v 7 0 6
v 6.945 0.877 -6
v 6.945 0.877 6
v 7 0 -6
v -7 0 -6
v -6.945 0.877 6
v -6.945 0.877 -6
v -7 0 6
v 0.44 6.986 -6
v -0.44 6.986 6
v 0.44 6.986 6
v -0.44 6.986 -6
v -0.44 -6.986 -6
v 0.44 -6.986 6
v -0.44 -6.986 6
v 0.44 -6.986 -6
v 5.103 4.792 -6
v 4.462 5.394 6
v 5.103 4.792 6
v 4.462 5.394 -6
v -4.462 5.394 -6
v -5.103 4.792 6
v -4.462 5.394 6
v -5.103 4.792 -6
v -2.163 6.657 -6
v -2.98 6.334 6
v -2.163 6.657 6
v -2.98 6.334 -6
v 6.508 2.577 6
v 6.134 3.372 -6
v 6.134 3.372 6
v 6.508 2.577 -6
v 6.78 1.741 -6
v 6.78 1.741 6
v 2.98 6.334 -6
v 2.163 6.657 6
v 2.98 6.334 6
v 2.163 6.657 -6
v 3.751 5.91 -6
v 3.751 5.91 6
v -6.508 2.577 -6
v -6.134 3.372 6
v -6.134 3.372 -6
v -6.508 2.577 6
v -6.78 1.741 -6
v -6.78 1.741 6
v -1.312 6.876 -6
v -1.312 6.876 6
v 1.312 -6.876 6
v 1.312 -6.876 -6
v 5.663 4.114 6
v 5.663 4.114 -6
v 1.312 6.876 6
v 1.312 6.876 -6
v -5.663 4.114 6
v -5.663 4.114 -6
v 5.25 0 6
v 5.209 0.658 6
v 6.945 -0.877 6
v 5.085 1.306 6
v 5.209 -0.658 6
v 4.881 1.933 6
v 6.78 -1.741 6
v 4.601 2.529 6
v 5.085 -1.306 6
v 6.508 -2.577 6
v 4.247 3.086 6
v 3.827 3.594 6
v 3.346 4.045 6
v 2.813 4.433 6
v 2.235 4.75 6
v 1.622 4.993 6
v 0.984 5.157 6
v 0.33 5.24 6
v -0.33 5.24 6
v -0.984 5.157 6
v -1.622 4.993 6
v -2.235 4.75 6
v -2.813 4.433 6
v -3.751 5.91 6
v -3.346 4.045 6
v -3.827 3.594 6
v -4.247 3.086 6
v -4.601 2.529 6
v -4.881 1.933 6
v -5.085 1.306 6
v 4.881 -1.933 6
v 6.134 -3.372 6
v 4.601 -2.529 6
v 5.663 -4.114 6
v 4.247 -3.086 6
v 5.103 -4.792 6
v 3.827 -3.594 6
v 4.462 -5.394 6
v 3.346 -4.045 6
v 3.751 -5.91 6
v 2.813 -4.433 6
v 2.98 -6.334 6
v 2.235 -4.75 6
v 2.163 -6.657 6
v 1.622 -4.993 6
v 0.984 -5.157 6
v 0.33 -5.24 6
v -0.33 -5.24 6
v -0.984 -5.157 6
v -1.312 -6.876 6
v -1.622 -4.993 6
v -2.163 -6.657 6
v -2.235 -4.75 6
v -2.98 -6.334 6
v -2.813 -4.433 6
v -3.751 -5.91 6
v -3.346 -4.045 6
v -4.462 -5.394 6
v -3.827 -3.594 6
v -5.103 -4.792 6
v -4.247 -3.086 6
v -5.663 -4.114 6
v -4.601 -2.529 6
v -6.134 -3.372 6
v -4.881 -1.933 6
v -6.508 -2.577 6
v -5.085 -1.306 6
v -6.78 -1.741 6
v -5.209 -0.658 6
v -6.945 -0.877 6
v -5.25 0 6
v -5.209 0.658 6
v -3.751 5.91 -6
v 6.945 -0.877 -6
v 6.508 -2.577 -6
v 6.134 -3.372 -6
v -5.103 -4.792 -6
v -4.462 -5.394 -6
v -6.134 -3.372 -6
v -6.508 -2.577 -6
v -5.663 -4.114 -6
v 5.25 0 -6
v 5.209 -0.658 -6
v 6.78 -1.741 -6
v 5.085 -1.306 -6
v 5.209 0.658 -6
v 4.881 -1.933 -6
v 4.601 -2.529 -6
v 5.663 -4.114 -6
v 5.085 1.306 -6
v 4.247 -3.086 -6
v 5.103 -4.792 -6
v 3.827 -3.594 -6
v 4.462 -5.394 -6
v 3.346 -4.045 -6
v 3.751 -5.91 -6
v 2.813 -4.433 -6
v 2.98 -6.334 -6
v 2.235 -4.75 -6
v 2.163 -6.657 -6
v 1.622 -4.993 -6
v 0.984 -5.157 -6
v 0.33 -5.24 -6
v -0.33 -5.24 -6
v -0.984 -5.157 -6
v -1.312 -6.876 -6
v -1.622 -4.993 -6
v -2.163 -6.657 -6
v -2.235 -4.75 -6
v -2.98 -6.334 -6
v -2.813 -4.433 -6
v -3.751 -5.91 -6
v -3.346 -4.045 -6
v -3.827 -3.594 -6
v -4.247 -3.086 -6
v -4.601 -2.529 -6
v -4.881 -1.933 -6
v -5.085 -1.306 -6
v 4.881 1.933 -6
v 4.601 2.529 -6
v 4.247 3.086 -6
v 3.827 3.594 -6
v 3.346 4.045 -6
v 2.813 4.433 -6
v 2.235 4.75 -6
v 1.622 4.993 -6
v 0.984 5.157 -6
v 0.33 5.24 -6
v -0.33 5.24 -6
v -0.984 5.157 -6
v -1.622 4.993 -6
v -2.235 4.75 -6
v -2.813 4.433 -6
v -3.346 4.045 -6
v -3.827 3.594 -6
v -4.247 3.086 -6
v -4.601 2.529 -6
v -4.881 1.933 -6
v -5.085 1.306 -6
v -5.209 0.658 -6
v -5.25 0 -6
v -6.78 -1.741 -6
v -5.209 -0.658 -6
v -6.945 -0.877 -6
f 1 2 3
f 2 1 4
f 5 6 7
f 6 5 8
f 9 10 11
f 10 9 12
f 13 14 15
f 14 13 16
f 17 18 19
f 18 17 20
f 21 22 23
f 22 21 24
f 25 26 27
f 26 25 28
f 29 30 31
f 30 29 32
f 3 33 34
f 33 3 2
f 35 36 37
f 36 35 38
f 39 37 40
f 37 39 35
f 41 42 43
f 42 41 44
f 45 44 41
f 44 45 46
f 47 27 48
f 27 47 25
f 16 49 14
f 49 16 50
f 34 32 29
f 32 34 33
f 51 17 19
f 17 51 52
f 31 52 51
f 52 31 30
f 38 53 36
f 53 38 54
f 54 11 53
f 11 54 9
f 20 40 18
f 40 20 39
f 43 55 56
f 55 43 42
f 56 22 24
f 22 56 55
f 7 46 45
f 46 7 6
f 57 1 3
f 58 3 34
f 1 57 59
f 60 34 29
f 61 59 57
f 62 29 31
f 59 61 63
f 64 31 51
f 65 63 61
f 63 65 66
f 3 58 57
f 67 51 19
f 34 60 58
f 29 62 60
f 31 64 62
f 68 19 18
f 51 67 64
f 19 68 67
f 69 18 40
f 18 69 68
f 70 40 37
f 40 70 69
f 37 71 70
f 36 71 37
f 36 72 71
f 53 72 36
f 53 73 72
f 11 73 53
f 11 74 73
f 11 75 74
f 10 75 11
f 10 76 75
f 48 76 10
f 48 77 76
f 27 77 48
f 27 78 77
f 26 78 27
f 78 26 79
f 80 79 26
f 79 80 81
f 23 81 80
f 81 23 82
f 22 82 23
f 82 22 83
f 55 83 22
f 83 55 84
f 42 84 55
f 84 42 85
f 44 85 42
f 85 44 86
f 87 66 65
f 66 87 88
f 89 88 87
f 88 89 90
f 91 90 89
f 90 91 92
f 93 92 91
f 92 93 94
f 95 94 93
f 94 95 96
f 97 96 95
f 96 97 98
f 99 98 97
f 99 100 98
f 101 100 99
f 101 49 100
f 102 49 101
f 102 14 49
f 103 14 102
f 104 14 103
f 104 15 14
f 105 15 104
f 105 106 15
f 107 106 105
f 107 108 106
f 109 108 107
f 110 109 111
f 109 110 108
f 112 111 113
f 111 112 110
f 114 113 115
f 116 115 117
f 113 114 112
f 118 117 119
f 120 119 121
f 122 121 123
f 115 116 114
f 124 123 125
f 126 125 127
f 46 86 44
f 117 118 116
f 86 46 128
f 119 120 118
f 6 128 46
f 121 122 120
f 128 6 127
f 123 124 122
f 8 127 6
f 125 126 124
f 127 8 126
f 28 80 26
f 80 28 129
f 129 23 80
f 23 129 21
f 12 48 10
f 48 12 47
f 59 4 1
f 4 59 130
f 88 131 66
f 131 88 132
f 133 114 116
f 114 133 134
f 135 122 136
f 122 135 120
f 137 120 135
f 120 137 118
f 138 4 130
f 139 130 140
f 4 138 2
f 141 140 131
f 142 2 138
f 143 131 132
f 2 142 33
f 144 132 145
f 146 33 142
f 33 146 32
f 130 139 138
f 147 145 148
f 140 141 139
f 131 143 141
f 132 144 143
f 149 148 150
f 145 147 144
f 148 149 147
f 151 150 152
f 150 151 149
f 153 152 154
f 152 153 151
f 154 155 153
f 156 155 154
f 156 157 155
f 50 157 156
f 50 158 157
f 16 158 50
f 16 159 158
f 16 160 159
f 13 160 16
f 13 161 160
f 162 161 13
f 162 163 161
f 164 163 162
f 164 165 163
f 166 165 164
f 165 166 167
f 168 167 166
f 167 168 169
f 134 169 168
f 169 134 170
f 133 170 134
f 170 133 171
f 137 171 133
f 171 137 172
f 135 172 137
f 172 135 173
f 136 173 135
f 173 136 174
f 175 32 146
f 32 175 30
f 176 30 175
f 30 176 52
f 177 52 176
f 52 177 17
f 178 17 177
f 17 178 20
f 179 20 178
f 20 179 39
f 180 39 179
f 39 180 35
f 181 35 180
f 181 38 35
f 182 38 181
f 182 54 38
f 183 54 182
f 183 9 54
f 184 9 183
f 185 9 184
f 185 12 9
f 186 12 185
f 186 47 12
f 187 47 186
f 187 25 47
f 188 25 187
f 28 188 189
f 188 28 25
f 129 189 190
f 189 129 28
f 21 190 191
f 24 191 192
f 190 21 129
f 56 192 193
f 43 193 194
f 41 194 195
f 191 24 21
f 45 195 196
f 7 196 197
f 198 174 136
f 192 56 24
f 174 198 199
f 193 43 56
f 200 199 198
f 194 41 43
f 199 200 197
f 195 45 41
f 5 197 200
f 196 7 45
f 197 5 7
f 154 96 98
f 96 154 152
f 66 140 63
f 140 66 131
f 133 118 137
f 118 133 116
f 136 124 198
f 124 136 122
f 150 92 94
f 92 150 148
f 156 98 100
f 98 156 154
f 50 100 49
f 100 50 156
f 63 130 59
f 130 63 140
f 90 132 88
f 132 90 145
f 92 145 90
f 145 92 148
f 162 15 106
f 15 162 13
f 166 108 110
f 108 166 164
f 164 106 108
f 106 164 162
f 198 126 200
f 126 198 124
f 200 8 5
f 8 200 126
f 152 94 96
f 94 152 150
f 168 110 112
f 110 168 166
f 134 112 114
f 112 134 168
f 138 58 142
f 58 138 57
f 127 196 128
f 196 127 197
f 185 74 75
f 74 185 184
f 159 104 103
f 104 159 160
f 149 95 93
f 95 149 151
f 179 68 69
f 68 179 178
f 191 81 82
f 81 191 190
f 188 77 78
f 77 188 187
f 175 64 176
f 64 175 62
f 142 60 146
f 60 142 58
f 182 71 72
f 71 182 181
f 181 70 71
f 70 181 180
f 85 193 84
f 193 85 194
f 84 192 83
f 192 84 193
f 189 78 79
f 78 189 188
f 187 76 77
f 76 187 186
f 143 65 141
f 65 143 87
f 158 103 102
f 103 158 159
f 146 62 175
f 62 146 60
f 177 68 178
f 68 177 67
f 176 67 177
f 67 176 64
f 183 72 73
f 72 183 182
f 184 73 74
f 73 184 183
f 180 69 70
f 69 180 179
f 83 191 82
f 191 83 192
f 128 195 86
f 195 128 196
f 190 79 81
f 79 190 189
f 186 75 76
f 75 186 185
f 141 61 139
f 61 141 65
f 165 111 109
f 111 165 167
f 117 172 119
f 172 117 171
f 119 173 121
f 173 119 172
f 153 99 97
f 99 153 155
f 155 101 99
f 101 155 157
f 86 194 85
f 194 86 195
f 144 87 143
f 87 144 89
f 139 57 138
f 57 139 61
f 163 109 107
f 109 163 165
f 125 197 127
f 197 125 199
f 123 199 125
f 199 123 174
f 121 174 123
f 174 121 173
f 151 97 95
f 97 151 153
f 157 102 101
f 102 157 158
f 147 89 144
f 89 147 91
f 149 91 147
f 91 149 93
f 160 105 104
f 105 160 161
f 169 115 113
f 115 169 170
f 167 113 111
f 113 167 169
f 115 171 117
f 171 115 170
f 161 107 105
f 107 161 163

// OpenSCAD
$fn = 50;


difference() {
	union() {
		translate(v = [0, 0, -6.0000000000]) {
			cylinder(h = 12, r = 7.0000000000);
		}
	}
	union() {
		translate(v = [0, 0, -100.0000000000]) {
			cylinder(h = 200, r = 5.2500000000);
		}
	}
}
